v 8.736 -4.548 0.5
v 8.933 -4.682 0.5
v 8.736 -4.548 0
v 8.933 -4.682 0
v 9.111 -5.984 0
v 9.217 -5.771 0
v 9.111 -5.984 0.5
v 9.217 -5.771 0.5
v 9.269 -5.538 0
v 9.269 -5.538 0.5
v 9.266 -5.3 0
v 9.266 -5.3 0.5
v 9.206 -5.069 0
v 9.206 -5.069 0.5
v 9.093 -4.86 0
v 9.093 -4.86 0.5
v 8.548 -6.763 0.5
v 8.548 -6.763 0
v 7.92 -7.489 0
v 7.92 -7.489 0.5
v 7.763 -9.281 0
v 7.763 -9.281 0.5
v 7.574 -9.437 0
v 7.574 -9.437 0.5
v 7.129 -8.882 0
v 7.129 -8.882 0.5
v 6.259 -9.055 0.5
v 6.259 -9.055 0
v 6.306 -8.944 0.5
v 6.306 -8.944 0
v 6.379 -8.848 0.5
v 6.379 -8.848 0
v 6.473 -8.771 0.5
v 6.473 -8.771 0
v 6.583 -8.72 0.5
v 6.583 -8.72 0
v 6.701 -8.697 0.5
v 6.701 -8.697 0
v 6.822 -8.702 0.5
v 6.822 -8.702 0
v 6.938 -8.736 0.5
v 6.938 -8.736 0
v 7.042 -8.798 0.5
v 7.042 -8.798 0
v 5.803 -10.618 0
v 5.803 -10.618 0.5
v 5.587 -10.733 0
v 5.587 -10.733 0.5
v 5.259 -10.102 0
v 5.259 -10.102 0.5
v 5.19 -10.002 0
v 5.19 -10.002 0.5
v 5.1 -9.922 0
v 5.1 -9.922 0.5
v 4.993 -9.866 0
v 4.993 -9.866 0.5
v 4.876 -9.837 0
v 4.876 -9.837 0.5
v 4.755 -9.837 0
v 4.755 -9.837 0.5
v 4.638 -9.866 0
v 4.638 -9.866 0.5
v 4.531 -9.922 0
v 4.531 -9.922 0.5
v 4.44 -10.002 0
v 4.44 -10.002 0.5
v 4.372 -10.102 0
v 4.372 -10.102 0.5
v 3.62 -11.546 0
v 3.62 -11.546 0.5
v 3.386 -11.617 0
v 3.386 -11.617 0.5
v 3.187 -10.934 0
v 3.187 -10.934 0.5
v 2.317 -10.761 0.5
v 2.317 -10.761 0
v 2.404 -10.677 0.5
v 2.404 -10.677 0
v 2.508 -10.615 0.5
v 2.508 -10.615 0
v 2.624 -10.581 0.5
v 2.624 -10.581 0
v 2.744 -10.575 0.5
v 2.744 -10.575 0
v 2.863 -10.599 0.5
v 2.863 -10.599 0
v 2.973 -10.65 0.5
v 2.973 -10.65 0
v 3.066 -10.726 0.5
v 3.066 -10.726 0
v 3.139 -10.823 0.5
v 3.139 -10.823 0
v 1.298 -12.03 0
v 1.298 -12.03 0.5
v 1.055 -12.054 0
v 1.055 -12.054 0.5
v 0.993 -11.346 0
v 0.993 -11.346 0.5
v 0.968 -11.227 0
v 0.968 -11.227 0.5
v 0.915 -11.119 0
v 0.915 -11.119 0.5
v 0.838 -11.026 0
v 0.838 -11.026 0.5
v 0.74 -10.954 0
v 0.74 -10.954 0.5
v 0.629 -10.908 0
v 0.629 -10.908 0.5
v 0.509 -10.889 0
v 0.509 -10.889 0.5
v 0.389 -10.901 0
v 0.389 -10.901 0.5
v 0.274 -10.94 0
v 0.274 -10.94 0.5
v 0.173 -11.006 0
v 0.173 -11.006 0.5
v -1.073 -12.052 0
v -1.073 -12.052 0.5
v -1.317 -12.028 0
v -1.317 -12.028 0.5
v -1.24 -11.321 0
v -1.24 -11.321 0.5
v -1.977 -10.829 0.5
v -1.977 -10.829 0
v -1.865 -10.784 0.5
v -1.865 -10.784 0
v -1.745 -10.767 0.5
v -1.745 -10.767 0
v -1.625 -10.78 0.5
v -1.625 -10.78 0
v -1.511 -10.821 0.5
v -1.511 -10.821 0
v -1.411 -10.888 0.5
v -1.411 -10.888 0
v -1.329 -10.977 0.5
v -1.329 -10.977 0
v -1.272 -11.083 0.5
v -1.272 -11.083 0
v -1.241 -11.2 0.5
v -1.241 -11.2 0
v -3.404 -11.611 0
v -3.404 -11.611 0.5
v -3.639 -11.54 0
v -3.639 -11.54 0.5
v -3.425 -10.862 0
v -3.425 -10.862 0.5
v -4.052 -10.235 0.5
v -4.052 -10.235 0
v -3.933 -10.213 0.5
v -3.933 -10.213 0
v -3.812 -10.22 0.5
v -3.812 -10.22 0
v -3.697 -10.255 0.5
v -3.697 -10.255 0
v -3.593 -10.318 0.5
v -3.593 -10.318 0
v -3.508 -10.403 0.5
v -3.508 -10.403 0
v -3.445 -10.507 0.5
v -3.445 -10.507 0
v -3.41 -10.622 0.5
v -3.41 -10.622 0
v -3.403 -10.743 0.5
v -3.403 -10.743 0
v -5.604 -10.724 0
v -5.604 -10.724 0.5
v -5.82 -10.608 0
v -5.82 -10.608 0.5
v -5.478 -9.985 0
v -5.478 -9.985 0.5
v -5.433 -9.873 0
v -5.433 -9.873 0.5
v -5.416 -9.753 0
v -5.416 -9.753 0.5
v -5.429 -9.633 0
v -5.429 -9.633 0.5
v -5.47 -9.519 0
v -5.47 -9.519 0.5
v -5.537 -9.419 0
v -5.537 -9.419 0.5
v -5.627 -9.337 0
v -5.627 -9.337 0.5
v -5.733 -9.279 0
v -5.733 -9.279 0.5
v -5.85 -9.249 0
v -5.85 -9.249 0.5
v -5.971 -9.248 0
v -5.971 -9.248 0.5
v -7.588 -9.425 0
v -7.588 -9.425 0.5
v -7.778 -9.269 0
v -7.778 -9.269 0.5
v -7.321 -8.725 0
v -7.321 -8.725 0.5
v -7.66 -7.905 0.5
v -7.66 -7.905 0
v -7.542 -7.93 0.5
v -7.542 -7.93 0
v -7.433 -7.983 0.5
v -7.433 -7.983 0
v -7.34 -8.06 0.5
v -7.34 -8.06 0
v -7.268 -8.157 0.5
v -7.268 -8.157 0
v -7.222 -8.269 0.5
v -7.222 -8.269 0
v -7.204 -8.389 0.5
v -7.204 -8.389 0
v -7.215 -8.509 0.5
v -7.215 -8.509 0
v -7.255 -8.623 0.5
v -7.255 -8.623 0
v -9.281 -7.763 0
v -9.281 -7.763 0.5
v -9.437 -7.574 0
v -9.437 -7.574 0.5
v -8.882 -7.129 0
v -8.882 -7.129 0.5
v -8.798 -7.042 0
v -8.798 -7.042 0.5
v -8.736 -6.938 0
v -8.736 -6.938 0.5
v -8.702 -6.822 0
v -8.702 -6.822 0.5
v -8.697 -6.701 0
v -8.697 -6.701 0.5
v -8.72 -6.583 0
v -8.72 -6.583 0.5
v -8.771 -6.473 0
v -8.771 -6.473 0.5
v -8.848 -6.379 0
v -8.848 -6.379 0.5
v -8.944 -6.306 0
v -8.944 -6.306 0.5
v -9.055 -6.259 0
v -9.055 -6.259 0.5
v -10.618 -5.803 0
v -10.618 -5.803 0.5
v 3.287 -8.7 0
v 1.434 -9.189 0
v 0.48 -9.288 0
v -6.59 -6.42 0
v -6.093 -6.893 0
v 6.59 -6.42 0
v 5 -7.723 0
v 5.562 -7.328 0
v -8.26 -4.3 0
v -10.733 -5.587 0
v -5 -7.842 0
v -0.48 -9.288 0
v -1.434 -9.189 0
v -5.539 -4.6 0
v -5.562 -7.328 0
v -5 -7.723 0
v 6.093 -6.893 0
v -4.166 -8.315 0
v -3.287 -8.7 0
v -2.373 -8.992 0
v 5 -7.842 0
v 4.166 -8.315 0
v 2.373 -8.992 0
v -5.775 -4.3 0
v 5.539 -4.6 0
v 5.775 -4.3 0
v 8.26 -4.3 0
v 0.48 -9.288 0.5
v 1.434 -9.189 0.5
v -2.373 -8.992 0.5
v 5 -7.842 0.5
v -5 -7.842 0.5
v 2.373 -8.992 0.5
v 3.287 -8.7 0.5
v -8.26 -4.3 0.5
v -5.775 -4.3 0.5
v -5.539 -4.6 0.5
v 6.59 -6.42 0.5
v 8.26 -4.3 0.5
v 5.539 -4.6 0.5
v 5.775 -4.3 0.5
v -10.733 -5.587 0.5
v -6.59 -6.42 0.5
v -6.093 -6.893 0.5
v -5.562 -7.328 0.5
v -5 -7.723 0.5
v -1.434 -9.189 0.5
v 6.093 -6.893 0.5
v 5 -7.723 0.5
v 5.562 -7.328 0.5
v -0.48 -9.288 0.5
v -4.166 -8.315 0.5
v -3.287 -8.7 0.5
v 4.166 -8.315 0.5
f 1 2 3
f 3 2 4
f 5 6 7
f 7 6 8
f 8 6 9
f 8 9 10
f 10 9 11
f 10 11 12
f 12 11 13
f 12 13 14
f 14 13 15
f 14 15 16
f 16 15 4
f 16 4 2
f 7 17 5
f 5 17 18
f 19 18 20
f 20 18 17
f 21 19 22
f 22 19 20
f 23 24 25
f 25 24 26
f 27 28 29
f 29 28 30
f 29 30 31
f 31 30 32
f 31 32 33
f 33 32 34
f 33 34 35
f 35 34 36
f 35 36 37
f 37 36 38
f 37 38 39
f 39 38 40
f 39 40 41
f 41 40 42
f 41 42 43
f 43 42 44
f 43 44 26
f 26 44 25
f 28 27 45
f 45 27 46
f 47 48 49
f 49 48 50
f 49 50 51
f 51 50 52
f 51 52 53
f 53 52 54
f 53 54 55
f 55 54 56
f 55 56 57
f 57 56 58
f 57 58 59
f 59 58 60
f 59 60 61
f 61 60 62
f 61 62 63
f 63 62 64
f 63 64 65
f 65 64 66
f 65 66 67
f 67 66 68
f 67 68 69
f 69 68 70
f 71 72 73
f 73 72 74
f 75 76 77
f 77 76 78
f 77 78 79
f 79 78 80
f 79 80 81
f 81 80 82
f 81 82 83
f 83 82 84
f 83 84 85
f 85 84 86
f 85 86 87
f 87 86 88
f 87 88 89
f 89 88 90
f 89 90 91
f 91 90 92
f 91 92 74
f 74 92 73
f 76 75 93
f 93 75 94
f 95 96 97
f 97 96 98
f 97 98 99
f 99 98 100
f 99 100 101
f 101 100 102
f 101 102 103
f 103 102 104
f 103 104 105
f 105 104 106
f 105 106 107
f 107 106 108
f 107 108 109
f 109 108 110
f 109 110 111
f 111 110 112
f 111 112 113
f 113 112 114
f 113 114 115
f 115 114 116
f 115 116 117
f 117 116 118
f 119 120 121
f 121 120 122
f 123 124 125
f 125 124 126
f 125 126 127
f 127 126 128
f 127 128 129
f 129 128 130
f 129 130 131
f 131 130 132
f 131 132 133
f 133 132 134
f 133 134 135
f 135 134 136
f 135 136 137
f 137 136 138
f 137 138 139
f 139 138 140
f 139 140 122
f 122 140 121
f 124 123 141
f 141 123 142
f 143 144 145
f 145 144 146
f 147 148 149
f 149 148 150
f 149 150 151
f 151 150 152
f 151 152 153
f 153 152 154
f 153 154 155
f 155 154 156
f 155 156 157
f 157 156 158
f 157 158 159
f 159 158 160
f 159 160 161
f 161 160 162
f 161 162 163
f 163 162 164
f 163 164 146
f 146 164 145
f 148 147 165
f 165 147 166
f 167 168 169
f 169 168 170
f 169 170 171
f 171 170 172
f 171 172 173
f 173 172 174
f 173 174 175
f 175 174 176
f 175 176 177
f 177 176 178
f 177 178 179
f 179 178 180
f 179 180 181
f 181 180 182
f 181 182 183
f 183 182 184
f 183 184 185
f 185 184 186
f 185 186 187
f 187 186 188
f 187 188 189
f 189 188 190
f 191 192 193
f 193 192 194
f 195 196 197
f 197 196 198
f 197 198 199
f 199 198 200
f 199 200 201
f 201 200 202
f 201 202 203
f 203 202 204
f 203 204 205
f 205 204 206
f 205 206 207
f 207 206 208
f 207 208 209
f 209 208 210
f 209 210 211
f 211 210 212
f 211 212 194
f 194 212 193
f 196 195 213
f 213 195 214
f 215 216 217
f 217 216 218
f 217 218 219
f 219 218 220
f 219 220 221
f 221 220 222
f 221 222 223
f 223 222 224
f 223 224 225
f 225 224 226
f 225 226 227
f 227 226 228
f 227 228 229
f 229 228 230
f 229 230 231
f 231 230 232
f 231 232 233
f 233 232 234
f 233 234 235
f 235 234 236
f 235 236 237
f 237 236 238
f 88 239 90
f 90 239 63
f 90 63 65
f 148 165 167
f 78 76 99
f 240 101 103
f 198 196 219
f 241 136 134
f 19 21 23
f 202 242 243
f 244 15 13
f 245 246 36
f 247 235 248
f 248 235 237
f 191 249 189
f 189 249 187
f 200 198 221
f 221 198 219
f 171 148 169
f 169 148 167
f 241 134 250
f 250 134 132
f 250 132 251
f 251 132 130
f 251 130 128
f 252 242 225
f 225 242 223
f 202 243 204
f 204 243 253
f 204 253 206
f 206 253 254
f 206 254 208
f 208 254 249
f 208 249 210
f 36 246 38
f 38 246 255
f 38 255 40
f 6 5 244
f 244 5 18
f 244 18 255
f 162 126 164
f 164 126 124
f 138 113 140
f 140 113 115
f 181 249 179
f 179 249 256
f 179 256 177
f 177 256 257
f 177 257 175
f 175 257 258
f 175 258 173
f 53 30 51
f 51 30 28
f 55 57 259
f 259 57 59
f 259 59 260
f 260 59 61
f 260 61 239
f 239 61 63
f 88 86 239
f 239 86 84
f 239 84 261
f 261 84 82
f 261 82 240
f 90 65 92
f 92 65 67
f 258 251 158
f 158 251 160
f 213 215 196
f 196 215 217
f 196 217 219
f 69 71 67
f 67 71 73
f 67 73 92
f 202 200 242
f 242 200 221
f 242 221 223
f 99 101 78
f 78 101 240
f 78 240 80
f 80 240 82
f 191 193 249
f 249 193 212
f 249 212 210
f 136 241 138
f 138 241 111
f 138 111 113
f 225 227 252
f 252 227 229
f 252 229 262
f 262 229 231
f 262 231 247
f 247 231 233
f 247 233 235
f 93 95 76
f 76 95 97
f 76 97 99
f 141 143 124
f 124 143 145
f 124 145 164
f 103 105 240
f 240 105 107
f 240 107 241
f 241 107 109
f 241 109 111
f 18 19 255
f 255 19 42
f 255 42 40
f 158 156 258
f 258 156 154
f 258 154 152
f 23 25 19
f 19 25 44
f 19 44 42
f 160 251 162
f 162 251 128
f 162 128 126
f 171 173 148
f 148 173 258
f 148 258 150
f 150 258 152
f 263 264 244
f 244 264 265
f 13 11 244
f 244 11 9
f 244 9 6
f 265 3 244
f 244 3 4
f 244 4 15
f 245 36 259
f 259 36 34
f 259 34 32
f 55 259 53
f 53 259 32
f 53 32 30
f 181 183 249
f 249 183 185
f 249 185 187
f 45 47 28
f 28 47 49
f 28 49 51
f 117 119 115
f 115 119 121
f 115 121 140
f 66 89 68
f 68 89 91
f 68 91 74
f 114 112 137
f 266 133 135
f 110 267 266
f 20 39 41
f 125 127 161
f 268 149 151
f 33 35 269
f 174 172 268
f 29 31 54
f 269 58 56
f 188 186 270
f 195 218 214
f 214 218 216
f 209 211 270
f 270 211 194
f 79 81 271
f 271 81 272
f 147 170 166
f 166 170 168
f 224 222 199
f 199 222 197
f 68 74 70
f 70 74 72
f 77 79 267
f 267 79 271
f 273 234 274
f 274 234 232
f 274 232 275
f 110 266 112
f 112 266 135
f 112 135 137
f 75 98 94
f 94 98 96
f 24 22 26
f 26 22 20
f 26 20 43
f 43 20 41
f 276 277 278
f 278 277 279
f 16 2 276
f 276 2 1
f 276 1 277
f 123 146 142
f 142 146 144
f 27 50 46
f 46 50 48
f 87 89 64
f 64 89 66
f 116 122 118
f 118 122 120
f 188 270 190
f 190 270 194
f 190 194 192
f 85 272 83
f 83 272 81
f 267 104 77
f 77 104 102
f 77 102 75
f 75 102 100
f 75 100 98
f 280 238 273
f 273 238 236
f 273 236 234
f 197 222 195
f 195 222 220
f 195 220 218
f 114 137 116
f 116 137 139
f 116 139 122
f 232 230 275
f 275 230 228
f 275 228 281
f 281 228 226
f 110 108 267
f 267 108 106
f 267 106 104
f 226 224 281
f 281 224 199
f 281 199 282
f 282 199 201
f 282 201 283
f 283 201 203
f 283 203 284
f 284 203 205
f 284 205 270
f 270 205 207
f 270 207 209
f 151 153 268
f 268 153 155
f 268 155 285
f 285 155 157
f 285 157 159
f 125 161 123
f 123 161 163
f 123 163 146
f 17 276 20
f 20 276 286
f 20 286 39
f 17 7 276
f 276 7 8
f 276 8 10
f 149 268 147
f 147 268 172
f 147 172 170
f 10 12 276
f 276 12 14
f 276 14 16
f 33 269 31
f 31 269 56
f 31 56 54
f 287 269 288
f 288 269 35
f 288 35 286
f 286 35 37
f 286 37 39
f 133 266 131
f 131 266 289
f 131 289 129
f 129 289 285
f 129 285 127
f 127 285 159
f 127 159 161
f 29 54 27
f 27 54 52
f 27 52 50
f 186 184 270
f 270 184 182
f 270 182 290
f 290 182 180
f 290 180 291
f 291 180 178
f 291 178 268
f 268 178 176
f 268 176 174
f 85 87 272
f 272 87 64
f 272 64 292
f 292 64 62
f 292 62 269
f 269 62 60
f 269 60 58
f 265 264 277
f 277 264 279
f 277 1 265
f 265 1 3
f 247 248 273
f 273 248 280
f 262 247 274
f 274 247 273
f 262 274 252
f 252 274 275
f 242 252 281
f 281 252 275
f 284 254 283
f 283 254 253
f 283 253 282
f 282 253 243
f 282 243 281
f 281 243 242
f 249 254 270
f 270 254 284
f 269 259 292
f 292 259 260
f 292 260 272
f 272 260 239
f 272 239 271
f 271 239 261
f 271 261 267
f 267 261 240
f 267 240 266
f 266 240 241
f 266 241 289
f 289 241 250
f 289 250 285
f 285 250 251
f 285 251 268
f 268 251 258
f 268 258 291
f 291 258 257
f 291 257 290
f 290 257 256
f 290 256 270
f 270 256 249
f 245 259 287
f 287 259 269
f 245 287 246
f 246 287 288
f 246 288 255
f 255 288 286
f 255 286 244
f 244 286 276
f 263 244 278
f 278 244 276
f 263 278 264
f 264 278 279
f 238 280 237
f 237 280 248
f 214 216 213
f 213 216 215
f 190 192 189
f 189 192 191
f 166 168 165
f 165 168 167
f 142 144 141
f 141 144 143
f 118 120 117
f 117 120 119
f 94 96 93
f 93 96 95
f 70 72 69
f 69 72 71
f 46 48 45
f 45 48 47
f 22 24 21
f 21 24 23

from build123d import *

# Parameters (mm, degrees)
BOSS_EXTRUDE1_DEPTH = 0.5
CUT_EXTRUDE1_DEPTH  = 0.5
CIRPATTERN1_COUNT   = 10
CIRPATTERN1_ANGLE   = 101.25
CUT_EXTRUDE3_START  = -0.5
CUT_EXTRUDE3_DEPTH  = 0.5
FILLET3_R           = 1


with BuildPart() as part:
    # Sketch1 → Boss-Extrude1 (new body)
    with BuildSketch(Plane.XY):
        with BuildLine():
            Line((-8.260223146, -4.3), (-10.732831081, -5.58715822))
            ThreePointArc((-10.732831081, -5.58715822), (0, -12.1), (10.732831081, -5.58715822))
            Line((10.732831081, -5.58715822), (8.260223146, -4.3))
            Line((8.260223146, -4.3), (5.774945887, -4.3))
            ThreePointArc((5.774945887, -4.3), (5.659072475, -4.451392897), (5.53923133, -4.5996648))
            Line((5.53923133, -4.5996648), (6.59, -6.419649523))
            ThreePointArc((6.59, -6.419649523), (5.831509763, -7.1157216), (5, -7.722693831))
            Line((5, -7.722693831), (5, -7.841555968))
            ThreePointArc((5, -7.841555968), (0, -9.3), (-5, -7.841555968))
            Line((-5, -7.841555968), (-5, -7.722693831))
            ThreePointArc((-5, -7.722693831), (-5.831509763, -7.1157216), (-6.59, -6.419649523))
            Line((-6.59, -6.419649523), (-5.53923133, -4.5996648))
            ThreePointArc((-5.53923133, -4.5996648), (-5.659072475, -4.451392897), (-5.774945887, -4.3))
            Line((-5.774945887, -4.3), (-8.260223146, -4.3))
        make_face()
    extrude(amount=BOSS_EXTRUDE1_DEPTH)

    # Sketch2 → Cut-Extrude1 (cut)
    with BuildSketch(Plane.XY.offset(0.5)):
        with BuildLine():
            Line((-10.617511084, -5.803314431), (-9.055174855, -6.258693914))
            ThreePointArc((-9.055174855, -6.258693914), (-8.704696722, -6.641173681), (-8.882127626, -7.128661083))
            Line((-8.882127626, -7.128661083), (-9.436602245, -7.573674013))
            ThreePointArc((-9.436602245, -7.573674013), (-10.066052286, -6.714506042), (-10.617511084, -5.803314431))
        make_face()
    cut_extrude1 = extrude(amount=-CUT_EXTRUDE1_DEPTH, mode=Mode.SUBTRACT)

    # CirPattern1: Cut-Extrude1 ×10 about axis
    cirpattern1_axis = Axis((0, 0, 0), (0, 0, 1))
    for i in range(1, CIRPATTERN1_COUNT):
        add(cut_extrude1.rotate(cirpattern1_axis, i * CIRPATTERN1_ANGLE / (CIRPATTERN1_COUNT - 1)), mode=Mode.SUBTRACT)

    # Sketch3 → Cut-Extrude3 (cut)
    with BuildSketch(Plane.XY.offset(0.5).offset(CUT_EXTRUDE3_START)):
        with BuildLine():
            Line((7.919995926, -7.488902759), (7.763179028, -9.281328104))
            ThreePointArc((7.763179028, -9.281328104), (9.430658528, -7.581073784), (10.732831081, -5.58715822))
            Line((10.732831081, -5.58715822), (9.668418082, -5.033059884))
            ThreePointArc((9.668418082, -5.033059884), (8.879519575, -6.321719079), (7.919995926, -7.488902759))
        make_face()
    extrude(amount=CUT_EXTRUDE3_DEPTH, mode=Mode.SUBTRACT)

    # Fillet3
    fillet3_edges = [part.edges().sort_by_distance(p)[0] for p in [
        (9.668418082, -5.033059884, 0.25),
    ]]
    fillet(fillet3_edges, radius=FILLET3_R)


solid = part.part
